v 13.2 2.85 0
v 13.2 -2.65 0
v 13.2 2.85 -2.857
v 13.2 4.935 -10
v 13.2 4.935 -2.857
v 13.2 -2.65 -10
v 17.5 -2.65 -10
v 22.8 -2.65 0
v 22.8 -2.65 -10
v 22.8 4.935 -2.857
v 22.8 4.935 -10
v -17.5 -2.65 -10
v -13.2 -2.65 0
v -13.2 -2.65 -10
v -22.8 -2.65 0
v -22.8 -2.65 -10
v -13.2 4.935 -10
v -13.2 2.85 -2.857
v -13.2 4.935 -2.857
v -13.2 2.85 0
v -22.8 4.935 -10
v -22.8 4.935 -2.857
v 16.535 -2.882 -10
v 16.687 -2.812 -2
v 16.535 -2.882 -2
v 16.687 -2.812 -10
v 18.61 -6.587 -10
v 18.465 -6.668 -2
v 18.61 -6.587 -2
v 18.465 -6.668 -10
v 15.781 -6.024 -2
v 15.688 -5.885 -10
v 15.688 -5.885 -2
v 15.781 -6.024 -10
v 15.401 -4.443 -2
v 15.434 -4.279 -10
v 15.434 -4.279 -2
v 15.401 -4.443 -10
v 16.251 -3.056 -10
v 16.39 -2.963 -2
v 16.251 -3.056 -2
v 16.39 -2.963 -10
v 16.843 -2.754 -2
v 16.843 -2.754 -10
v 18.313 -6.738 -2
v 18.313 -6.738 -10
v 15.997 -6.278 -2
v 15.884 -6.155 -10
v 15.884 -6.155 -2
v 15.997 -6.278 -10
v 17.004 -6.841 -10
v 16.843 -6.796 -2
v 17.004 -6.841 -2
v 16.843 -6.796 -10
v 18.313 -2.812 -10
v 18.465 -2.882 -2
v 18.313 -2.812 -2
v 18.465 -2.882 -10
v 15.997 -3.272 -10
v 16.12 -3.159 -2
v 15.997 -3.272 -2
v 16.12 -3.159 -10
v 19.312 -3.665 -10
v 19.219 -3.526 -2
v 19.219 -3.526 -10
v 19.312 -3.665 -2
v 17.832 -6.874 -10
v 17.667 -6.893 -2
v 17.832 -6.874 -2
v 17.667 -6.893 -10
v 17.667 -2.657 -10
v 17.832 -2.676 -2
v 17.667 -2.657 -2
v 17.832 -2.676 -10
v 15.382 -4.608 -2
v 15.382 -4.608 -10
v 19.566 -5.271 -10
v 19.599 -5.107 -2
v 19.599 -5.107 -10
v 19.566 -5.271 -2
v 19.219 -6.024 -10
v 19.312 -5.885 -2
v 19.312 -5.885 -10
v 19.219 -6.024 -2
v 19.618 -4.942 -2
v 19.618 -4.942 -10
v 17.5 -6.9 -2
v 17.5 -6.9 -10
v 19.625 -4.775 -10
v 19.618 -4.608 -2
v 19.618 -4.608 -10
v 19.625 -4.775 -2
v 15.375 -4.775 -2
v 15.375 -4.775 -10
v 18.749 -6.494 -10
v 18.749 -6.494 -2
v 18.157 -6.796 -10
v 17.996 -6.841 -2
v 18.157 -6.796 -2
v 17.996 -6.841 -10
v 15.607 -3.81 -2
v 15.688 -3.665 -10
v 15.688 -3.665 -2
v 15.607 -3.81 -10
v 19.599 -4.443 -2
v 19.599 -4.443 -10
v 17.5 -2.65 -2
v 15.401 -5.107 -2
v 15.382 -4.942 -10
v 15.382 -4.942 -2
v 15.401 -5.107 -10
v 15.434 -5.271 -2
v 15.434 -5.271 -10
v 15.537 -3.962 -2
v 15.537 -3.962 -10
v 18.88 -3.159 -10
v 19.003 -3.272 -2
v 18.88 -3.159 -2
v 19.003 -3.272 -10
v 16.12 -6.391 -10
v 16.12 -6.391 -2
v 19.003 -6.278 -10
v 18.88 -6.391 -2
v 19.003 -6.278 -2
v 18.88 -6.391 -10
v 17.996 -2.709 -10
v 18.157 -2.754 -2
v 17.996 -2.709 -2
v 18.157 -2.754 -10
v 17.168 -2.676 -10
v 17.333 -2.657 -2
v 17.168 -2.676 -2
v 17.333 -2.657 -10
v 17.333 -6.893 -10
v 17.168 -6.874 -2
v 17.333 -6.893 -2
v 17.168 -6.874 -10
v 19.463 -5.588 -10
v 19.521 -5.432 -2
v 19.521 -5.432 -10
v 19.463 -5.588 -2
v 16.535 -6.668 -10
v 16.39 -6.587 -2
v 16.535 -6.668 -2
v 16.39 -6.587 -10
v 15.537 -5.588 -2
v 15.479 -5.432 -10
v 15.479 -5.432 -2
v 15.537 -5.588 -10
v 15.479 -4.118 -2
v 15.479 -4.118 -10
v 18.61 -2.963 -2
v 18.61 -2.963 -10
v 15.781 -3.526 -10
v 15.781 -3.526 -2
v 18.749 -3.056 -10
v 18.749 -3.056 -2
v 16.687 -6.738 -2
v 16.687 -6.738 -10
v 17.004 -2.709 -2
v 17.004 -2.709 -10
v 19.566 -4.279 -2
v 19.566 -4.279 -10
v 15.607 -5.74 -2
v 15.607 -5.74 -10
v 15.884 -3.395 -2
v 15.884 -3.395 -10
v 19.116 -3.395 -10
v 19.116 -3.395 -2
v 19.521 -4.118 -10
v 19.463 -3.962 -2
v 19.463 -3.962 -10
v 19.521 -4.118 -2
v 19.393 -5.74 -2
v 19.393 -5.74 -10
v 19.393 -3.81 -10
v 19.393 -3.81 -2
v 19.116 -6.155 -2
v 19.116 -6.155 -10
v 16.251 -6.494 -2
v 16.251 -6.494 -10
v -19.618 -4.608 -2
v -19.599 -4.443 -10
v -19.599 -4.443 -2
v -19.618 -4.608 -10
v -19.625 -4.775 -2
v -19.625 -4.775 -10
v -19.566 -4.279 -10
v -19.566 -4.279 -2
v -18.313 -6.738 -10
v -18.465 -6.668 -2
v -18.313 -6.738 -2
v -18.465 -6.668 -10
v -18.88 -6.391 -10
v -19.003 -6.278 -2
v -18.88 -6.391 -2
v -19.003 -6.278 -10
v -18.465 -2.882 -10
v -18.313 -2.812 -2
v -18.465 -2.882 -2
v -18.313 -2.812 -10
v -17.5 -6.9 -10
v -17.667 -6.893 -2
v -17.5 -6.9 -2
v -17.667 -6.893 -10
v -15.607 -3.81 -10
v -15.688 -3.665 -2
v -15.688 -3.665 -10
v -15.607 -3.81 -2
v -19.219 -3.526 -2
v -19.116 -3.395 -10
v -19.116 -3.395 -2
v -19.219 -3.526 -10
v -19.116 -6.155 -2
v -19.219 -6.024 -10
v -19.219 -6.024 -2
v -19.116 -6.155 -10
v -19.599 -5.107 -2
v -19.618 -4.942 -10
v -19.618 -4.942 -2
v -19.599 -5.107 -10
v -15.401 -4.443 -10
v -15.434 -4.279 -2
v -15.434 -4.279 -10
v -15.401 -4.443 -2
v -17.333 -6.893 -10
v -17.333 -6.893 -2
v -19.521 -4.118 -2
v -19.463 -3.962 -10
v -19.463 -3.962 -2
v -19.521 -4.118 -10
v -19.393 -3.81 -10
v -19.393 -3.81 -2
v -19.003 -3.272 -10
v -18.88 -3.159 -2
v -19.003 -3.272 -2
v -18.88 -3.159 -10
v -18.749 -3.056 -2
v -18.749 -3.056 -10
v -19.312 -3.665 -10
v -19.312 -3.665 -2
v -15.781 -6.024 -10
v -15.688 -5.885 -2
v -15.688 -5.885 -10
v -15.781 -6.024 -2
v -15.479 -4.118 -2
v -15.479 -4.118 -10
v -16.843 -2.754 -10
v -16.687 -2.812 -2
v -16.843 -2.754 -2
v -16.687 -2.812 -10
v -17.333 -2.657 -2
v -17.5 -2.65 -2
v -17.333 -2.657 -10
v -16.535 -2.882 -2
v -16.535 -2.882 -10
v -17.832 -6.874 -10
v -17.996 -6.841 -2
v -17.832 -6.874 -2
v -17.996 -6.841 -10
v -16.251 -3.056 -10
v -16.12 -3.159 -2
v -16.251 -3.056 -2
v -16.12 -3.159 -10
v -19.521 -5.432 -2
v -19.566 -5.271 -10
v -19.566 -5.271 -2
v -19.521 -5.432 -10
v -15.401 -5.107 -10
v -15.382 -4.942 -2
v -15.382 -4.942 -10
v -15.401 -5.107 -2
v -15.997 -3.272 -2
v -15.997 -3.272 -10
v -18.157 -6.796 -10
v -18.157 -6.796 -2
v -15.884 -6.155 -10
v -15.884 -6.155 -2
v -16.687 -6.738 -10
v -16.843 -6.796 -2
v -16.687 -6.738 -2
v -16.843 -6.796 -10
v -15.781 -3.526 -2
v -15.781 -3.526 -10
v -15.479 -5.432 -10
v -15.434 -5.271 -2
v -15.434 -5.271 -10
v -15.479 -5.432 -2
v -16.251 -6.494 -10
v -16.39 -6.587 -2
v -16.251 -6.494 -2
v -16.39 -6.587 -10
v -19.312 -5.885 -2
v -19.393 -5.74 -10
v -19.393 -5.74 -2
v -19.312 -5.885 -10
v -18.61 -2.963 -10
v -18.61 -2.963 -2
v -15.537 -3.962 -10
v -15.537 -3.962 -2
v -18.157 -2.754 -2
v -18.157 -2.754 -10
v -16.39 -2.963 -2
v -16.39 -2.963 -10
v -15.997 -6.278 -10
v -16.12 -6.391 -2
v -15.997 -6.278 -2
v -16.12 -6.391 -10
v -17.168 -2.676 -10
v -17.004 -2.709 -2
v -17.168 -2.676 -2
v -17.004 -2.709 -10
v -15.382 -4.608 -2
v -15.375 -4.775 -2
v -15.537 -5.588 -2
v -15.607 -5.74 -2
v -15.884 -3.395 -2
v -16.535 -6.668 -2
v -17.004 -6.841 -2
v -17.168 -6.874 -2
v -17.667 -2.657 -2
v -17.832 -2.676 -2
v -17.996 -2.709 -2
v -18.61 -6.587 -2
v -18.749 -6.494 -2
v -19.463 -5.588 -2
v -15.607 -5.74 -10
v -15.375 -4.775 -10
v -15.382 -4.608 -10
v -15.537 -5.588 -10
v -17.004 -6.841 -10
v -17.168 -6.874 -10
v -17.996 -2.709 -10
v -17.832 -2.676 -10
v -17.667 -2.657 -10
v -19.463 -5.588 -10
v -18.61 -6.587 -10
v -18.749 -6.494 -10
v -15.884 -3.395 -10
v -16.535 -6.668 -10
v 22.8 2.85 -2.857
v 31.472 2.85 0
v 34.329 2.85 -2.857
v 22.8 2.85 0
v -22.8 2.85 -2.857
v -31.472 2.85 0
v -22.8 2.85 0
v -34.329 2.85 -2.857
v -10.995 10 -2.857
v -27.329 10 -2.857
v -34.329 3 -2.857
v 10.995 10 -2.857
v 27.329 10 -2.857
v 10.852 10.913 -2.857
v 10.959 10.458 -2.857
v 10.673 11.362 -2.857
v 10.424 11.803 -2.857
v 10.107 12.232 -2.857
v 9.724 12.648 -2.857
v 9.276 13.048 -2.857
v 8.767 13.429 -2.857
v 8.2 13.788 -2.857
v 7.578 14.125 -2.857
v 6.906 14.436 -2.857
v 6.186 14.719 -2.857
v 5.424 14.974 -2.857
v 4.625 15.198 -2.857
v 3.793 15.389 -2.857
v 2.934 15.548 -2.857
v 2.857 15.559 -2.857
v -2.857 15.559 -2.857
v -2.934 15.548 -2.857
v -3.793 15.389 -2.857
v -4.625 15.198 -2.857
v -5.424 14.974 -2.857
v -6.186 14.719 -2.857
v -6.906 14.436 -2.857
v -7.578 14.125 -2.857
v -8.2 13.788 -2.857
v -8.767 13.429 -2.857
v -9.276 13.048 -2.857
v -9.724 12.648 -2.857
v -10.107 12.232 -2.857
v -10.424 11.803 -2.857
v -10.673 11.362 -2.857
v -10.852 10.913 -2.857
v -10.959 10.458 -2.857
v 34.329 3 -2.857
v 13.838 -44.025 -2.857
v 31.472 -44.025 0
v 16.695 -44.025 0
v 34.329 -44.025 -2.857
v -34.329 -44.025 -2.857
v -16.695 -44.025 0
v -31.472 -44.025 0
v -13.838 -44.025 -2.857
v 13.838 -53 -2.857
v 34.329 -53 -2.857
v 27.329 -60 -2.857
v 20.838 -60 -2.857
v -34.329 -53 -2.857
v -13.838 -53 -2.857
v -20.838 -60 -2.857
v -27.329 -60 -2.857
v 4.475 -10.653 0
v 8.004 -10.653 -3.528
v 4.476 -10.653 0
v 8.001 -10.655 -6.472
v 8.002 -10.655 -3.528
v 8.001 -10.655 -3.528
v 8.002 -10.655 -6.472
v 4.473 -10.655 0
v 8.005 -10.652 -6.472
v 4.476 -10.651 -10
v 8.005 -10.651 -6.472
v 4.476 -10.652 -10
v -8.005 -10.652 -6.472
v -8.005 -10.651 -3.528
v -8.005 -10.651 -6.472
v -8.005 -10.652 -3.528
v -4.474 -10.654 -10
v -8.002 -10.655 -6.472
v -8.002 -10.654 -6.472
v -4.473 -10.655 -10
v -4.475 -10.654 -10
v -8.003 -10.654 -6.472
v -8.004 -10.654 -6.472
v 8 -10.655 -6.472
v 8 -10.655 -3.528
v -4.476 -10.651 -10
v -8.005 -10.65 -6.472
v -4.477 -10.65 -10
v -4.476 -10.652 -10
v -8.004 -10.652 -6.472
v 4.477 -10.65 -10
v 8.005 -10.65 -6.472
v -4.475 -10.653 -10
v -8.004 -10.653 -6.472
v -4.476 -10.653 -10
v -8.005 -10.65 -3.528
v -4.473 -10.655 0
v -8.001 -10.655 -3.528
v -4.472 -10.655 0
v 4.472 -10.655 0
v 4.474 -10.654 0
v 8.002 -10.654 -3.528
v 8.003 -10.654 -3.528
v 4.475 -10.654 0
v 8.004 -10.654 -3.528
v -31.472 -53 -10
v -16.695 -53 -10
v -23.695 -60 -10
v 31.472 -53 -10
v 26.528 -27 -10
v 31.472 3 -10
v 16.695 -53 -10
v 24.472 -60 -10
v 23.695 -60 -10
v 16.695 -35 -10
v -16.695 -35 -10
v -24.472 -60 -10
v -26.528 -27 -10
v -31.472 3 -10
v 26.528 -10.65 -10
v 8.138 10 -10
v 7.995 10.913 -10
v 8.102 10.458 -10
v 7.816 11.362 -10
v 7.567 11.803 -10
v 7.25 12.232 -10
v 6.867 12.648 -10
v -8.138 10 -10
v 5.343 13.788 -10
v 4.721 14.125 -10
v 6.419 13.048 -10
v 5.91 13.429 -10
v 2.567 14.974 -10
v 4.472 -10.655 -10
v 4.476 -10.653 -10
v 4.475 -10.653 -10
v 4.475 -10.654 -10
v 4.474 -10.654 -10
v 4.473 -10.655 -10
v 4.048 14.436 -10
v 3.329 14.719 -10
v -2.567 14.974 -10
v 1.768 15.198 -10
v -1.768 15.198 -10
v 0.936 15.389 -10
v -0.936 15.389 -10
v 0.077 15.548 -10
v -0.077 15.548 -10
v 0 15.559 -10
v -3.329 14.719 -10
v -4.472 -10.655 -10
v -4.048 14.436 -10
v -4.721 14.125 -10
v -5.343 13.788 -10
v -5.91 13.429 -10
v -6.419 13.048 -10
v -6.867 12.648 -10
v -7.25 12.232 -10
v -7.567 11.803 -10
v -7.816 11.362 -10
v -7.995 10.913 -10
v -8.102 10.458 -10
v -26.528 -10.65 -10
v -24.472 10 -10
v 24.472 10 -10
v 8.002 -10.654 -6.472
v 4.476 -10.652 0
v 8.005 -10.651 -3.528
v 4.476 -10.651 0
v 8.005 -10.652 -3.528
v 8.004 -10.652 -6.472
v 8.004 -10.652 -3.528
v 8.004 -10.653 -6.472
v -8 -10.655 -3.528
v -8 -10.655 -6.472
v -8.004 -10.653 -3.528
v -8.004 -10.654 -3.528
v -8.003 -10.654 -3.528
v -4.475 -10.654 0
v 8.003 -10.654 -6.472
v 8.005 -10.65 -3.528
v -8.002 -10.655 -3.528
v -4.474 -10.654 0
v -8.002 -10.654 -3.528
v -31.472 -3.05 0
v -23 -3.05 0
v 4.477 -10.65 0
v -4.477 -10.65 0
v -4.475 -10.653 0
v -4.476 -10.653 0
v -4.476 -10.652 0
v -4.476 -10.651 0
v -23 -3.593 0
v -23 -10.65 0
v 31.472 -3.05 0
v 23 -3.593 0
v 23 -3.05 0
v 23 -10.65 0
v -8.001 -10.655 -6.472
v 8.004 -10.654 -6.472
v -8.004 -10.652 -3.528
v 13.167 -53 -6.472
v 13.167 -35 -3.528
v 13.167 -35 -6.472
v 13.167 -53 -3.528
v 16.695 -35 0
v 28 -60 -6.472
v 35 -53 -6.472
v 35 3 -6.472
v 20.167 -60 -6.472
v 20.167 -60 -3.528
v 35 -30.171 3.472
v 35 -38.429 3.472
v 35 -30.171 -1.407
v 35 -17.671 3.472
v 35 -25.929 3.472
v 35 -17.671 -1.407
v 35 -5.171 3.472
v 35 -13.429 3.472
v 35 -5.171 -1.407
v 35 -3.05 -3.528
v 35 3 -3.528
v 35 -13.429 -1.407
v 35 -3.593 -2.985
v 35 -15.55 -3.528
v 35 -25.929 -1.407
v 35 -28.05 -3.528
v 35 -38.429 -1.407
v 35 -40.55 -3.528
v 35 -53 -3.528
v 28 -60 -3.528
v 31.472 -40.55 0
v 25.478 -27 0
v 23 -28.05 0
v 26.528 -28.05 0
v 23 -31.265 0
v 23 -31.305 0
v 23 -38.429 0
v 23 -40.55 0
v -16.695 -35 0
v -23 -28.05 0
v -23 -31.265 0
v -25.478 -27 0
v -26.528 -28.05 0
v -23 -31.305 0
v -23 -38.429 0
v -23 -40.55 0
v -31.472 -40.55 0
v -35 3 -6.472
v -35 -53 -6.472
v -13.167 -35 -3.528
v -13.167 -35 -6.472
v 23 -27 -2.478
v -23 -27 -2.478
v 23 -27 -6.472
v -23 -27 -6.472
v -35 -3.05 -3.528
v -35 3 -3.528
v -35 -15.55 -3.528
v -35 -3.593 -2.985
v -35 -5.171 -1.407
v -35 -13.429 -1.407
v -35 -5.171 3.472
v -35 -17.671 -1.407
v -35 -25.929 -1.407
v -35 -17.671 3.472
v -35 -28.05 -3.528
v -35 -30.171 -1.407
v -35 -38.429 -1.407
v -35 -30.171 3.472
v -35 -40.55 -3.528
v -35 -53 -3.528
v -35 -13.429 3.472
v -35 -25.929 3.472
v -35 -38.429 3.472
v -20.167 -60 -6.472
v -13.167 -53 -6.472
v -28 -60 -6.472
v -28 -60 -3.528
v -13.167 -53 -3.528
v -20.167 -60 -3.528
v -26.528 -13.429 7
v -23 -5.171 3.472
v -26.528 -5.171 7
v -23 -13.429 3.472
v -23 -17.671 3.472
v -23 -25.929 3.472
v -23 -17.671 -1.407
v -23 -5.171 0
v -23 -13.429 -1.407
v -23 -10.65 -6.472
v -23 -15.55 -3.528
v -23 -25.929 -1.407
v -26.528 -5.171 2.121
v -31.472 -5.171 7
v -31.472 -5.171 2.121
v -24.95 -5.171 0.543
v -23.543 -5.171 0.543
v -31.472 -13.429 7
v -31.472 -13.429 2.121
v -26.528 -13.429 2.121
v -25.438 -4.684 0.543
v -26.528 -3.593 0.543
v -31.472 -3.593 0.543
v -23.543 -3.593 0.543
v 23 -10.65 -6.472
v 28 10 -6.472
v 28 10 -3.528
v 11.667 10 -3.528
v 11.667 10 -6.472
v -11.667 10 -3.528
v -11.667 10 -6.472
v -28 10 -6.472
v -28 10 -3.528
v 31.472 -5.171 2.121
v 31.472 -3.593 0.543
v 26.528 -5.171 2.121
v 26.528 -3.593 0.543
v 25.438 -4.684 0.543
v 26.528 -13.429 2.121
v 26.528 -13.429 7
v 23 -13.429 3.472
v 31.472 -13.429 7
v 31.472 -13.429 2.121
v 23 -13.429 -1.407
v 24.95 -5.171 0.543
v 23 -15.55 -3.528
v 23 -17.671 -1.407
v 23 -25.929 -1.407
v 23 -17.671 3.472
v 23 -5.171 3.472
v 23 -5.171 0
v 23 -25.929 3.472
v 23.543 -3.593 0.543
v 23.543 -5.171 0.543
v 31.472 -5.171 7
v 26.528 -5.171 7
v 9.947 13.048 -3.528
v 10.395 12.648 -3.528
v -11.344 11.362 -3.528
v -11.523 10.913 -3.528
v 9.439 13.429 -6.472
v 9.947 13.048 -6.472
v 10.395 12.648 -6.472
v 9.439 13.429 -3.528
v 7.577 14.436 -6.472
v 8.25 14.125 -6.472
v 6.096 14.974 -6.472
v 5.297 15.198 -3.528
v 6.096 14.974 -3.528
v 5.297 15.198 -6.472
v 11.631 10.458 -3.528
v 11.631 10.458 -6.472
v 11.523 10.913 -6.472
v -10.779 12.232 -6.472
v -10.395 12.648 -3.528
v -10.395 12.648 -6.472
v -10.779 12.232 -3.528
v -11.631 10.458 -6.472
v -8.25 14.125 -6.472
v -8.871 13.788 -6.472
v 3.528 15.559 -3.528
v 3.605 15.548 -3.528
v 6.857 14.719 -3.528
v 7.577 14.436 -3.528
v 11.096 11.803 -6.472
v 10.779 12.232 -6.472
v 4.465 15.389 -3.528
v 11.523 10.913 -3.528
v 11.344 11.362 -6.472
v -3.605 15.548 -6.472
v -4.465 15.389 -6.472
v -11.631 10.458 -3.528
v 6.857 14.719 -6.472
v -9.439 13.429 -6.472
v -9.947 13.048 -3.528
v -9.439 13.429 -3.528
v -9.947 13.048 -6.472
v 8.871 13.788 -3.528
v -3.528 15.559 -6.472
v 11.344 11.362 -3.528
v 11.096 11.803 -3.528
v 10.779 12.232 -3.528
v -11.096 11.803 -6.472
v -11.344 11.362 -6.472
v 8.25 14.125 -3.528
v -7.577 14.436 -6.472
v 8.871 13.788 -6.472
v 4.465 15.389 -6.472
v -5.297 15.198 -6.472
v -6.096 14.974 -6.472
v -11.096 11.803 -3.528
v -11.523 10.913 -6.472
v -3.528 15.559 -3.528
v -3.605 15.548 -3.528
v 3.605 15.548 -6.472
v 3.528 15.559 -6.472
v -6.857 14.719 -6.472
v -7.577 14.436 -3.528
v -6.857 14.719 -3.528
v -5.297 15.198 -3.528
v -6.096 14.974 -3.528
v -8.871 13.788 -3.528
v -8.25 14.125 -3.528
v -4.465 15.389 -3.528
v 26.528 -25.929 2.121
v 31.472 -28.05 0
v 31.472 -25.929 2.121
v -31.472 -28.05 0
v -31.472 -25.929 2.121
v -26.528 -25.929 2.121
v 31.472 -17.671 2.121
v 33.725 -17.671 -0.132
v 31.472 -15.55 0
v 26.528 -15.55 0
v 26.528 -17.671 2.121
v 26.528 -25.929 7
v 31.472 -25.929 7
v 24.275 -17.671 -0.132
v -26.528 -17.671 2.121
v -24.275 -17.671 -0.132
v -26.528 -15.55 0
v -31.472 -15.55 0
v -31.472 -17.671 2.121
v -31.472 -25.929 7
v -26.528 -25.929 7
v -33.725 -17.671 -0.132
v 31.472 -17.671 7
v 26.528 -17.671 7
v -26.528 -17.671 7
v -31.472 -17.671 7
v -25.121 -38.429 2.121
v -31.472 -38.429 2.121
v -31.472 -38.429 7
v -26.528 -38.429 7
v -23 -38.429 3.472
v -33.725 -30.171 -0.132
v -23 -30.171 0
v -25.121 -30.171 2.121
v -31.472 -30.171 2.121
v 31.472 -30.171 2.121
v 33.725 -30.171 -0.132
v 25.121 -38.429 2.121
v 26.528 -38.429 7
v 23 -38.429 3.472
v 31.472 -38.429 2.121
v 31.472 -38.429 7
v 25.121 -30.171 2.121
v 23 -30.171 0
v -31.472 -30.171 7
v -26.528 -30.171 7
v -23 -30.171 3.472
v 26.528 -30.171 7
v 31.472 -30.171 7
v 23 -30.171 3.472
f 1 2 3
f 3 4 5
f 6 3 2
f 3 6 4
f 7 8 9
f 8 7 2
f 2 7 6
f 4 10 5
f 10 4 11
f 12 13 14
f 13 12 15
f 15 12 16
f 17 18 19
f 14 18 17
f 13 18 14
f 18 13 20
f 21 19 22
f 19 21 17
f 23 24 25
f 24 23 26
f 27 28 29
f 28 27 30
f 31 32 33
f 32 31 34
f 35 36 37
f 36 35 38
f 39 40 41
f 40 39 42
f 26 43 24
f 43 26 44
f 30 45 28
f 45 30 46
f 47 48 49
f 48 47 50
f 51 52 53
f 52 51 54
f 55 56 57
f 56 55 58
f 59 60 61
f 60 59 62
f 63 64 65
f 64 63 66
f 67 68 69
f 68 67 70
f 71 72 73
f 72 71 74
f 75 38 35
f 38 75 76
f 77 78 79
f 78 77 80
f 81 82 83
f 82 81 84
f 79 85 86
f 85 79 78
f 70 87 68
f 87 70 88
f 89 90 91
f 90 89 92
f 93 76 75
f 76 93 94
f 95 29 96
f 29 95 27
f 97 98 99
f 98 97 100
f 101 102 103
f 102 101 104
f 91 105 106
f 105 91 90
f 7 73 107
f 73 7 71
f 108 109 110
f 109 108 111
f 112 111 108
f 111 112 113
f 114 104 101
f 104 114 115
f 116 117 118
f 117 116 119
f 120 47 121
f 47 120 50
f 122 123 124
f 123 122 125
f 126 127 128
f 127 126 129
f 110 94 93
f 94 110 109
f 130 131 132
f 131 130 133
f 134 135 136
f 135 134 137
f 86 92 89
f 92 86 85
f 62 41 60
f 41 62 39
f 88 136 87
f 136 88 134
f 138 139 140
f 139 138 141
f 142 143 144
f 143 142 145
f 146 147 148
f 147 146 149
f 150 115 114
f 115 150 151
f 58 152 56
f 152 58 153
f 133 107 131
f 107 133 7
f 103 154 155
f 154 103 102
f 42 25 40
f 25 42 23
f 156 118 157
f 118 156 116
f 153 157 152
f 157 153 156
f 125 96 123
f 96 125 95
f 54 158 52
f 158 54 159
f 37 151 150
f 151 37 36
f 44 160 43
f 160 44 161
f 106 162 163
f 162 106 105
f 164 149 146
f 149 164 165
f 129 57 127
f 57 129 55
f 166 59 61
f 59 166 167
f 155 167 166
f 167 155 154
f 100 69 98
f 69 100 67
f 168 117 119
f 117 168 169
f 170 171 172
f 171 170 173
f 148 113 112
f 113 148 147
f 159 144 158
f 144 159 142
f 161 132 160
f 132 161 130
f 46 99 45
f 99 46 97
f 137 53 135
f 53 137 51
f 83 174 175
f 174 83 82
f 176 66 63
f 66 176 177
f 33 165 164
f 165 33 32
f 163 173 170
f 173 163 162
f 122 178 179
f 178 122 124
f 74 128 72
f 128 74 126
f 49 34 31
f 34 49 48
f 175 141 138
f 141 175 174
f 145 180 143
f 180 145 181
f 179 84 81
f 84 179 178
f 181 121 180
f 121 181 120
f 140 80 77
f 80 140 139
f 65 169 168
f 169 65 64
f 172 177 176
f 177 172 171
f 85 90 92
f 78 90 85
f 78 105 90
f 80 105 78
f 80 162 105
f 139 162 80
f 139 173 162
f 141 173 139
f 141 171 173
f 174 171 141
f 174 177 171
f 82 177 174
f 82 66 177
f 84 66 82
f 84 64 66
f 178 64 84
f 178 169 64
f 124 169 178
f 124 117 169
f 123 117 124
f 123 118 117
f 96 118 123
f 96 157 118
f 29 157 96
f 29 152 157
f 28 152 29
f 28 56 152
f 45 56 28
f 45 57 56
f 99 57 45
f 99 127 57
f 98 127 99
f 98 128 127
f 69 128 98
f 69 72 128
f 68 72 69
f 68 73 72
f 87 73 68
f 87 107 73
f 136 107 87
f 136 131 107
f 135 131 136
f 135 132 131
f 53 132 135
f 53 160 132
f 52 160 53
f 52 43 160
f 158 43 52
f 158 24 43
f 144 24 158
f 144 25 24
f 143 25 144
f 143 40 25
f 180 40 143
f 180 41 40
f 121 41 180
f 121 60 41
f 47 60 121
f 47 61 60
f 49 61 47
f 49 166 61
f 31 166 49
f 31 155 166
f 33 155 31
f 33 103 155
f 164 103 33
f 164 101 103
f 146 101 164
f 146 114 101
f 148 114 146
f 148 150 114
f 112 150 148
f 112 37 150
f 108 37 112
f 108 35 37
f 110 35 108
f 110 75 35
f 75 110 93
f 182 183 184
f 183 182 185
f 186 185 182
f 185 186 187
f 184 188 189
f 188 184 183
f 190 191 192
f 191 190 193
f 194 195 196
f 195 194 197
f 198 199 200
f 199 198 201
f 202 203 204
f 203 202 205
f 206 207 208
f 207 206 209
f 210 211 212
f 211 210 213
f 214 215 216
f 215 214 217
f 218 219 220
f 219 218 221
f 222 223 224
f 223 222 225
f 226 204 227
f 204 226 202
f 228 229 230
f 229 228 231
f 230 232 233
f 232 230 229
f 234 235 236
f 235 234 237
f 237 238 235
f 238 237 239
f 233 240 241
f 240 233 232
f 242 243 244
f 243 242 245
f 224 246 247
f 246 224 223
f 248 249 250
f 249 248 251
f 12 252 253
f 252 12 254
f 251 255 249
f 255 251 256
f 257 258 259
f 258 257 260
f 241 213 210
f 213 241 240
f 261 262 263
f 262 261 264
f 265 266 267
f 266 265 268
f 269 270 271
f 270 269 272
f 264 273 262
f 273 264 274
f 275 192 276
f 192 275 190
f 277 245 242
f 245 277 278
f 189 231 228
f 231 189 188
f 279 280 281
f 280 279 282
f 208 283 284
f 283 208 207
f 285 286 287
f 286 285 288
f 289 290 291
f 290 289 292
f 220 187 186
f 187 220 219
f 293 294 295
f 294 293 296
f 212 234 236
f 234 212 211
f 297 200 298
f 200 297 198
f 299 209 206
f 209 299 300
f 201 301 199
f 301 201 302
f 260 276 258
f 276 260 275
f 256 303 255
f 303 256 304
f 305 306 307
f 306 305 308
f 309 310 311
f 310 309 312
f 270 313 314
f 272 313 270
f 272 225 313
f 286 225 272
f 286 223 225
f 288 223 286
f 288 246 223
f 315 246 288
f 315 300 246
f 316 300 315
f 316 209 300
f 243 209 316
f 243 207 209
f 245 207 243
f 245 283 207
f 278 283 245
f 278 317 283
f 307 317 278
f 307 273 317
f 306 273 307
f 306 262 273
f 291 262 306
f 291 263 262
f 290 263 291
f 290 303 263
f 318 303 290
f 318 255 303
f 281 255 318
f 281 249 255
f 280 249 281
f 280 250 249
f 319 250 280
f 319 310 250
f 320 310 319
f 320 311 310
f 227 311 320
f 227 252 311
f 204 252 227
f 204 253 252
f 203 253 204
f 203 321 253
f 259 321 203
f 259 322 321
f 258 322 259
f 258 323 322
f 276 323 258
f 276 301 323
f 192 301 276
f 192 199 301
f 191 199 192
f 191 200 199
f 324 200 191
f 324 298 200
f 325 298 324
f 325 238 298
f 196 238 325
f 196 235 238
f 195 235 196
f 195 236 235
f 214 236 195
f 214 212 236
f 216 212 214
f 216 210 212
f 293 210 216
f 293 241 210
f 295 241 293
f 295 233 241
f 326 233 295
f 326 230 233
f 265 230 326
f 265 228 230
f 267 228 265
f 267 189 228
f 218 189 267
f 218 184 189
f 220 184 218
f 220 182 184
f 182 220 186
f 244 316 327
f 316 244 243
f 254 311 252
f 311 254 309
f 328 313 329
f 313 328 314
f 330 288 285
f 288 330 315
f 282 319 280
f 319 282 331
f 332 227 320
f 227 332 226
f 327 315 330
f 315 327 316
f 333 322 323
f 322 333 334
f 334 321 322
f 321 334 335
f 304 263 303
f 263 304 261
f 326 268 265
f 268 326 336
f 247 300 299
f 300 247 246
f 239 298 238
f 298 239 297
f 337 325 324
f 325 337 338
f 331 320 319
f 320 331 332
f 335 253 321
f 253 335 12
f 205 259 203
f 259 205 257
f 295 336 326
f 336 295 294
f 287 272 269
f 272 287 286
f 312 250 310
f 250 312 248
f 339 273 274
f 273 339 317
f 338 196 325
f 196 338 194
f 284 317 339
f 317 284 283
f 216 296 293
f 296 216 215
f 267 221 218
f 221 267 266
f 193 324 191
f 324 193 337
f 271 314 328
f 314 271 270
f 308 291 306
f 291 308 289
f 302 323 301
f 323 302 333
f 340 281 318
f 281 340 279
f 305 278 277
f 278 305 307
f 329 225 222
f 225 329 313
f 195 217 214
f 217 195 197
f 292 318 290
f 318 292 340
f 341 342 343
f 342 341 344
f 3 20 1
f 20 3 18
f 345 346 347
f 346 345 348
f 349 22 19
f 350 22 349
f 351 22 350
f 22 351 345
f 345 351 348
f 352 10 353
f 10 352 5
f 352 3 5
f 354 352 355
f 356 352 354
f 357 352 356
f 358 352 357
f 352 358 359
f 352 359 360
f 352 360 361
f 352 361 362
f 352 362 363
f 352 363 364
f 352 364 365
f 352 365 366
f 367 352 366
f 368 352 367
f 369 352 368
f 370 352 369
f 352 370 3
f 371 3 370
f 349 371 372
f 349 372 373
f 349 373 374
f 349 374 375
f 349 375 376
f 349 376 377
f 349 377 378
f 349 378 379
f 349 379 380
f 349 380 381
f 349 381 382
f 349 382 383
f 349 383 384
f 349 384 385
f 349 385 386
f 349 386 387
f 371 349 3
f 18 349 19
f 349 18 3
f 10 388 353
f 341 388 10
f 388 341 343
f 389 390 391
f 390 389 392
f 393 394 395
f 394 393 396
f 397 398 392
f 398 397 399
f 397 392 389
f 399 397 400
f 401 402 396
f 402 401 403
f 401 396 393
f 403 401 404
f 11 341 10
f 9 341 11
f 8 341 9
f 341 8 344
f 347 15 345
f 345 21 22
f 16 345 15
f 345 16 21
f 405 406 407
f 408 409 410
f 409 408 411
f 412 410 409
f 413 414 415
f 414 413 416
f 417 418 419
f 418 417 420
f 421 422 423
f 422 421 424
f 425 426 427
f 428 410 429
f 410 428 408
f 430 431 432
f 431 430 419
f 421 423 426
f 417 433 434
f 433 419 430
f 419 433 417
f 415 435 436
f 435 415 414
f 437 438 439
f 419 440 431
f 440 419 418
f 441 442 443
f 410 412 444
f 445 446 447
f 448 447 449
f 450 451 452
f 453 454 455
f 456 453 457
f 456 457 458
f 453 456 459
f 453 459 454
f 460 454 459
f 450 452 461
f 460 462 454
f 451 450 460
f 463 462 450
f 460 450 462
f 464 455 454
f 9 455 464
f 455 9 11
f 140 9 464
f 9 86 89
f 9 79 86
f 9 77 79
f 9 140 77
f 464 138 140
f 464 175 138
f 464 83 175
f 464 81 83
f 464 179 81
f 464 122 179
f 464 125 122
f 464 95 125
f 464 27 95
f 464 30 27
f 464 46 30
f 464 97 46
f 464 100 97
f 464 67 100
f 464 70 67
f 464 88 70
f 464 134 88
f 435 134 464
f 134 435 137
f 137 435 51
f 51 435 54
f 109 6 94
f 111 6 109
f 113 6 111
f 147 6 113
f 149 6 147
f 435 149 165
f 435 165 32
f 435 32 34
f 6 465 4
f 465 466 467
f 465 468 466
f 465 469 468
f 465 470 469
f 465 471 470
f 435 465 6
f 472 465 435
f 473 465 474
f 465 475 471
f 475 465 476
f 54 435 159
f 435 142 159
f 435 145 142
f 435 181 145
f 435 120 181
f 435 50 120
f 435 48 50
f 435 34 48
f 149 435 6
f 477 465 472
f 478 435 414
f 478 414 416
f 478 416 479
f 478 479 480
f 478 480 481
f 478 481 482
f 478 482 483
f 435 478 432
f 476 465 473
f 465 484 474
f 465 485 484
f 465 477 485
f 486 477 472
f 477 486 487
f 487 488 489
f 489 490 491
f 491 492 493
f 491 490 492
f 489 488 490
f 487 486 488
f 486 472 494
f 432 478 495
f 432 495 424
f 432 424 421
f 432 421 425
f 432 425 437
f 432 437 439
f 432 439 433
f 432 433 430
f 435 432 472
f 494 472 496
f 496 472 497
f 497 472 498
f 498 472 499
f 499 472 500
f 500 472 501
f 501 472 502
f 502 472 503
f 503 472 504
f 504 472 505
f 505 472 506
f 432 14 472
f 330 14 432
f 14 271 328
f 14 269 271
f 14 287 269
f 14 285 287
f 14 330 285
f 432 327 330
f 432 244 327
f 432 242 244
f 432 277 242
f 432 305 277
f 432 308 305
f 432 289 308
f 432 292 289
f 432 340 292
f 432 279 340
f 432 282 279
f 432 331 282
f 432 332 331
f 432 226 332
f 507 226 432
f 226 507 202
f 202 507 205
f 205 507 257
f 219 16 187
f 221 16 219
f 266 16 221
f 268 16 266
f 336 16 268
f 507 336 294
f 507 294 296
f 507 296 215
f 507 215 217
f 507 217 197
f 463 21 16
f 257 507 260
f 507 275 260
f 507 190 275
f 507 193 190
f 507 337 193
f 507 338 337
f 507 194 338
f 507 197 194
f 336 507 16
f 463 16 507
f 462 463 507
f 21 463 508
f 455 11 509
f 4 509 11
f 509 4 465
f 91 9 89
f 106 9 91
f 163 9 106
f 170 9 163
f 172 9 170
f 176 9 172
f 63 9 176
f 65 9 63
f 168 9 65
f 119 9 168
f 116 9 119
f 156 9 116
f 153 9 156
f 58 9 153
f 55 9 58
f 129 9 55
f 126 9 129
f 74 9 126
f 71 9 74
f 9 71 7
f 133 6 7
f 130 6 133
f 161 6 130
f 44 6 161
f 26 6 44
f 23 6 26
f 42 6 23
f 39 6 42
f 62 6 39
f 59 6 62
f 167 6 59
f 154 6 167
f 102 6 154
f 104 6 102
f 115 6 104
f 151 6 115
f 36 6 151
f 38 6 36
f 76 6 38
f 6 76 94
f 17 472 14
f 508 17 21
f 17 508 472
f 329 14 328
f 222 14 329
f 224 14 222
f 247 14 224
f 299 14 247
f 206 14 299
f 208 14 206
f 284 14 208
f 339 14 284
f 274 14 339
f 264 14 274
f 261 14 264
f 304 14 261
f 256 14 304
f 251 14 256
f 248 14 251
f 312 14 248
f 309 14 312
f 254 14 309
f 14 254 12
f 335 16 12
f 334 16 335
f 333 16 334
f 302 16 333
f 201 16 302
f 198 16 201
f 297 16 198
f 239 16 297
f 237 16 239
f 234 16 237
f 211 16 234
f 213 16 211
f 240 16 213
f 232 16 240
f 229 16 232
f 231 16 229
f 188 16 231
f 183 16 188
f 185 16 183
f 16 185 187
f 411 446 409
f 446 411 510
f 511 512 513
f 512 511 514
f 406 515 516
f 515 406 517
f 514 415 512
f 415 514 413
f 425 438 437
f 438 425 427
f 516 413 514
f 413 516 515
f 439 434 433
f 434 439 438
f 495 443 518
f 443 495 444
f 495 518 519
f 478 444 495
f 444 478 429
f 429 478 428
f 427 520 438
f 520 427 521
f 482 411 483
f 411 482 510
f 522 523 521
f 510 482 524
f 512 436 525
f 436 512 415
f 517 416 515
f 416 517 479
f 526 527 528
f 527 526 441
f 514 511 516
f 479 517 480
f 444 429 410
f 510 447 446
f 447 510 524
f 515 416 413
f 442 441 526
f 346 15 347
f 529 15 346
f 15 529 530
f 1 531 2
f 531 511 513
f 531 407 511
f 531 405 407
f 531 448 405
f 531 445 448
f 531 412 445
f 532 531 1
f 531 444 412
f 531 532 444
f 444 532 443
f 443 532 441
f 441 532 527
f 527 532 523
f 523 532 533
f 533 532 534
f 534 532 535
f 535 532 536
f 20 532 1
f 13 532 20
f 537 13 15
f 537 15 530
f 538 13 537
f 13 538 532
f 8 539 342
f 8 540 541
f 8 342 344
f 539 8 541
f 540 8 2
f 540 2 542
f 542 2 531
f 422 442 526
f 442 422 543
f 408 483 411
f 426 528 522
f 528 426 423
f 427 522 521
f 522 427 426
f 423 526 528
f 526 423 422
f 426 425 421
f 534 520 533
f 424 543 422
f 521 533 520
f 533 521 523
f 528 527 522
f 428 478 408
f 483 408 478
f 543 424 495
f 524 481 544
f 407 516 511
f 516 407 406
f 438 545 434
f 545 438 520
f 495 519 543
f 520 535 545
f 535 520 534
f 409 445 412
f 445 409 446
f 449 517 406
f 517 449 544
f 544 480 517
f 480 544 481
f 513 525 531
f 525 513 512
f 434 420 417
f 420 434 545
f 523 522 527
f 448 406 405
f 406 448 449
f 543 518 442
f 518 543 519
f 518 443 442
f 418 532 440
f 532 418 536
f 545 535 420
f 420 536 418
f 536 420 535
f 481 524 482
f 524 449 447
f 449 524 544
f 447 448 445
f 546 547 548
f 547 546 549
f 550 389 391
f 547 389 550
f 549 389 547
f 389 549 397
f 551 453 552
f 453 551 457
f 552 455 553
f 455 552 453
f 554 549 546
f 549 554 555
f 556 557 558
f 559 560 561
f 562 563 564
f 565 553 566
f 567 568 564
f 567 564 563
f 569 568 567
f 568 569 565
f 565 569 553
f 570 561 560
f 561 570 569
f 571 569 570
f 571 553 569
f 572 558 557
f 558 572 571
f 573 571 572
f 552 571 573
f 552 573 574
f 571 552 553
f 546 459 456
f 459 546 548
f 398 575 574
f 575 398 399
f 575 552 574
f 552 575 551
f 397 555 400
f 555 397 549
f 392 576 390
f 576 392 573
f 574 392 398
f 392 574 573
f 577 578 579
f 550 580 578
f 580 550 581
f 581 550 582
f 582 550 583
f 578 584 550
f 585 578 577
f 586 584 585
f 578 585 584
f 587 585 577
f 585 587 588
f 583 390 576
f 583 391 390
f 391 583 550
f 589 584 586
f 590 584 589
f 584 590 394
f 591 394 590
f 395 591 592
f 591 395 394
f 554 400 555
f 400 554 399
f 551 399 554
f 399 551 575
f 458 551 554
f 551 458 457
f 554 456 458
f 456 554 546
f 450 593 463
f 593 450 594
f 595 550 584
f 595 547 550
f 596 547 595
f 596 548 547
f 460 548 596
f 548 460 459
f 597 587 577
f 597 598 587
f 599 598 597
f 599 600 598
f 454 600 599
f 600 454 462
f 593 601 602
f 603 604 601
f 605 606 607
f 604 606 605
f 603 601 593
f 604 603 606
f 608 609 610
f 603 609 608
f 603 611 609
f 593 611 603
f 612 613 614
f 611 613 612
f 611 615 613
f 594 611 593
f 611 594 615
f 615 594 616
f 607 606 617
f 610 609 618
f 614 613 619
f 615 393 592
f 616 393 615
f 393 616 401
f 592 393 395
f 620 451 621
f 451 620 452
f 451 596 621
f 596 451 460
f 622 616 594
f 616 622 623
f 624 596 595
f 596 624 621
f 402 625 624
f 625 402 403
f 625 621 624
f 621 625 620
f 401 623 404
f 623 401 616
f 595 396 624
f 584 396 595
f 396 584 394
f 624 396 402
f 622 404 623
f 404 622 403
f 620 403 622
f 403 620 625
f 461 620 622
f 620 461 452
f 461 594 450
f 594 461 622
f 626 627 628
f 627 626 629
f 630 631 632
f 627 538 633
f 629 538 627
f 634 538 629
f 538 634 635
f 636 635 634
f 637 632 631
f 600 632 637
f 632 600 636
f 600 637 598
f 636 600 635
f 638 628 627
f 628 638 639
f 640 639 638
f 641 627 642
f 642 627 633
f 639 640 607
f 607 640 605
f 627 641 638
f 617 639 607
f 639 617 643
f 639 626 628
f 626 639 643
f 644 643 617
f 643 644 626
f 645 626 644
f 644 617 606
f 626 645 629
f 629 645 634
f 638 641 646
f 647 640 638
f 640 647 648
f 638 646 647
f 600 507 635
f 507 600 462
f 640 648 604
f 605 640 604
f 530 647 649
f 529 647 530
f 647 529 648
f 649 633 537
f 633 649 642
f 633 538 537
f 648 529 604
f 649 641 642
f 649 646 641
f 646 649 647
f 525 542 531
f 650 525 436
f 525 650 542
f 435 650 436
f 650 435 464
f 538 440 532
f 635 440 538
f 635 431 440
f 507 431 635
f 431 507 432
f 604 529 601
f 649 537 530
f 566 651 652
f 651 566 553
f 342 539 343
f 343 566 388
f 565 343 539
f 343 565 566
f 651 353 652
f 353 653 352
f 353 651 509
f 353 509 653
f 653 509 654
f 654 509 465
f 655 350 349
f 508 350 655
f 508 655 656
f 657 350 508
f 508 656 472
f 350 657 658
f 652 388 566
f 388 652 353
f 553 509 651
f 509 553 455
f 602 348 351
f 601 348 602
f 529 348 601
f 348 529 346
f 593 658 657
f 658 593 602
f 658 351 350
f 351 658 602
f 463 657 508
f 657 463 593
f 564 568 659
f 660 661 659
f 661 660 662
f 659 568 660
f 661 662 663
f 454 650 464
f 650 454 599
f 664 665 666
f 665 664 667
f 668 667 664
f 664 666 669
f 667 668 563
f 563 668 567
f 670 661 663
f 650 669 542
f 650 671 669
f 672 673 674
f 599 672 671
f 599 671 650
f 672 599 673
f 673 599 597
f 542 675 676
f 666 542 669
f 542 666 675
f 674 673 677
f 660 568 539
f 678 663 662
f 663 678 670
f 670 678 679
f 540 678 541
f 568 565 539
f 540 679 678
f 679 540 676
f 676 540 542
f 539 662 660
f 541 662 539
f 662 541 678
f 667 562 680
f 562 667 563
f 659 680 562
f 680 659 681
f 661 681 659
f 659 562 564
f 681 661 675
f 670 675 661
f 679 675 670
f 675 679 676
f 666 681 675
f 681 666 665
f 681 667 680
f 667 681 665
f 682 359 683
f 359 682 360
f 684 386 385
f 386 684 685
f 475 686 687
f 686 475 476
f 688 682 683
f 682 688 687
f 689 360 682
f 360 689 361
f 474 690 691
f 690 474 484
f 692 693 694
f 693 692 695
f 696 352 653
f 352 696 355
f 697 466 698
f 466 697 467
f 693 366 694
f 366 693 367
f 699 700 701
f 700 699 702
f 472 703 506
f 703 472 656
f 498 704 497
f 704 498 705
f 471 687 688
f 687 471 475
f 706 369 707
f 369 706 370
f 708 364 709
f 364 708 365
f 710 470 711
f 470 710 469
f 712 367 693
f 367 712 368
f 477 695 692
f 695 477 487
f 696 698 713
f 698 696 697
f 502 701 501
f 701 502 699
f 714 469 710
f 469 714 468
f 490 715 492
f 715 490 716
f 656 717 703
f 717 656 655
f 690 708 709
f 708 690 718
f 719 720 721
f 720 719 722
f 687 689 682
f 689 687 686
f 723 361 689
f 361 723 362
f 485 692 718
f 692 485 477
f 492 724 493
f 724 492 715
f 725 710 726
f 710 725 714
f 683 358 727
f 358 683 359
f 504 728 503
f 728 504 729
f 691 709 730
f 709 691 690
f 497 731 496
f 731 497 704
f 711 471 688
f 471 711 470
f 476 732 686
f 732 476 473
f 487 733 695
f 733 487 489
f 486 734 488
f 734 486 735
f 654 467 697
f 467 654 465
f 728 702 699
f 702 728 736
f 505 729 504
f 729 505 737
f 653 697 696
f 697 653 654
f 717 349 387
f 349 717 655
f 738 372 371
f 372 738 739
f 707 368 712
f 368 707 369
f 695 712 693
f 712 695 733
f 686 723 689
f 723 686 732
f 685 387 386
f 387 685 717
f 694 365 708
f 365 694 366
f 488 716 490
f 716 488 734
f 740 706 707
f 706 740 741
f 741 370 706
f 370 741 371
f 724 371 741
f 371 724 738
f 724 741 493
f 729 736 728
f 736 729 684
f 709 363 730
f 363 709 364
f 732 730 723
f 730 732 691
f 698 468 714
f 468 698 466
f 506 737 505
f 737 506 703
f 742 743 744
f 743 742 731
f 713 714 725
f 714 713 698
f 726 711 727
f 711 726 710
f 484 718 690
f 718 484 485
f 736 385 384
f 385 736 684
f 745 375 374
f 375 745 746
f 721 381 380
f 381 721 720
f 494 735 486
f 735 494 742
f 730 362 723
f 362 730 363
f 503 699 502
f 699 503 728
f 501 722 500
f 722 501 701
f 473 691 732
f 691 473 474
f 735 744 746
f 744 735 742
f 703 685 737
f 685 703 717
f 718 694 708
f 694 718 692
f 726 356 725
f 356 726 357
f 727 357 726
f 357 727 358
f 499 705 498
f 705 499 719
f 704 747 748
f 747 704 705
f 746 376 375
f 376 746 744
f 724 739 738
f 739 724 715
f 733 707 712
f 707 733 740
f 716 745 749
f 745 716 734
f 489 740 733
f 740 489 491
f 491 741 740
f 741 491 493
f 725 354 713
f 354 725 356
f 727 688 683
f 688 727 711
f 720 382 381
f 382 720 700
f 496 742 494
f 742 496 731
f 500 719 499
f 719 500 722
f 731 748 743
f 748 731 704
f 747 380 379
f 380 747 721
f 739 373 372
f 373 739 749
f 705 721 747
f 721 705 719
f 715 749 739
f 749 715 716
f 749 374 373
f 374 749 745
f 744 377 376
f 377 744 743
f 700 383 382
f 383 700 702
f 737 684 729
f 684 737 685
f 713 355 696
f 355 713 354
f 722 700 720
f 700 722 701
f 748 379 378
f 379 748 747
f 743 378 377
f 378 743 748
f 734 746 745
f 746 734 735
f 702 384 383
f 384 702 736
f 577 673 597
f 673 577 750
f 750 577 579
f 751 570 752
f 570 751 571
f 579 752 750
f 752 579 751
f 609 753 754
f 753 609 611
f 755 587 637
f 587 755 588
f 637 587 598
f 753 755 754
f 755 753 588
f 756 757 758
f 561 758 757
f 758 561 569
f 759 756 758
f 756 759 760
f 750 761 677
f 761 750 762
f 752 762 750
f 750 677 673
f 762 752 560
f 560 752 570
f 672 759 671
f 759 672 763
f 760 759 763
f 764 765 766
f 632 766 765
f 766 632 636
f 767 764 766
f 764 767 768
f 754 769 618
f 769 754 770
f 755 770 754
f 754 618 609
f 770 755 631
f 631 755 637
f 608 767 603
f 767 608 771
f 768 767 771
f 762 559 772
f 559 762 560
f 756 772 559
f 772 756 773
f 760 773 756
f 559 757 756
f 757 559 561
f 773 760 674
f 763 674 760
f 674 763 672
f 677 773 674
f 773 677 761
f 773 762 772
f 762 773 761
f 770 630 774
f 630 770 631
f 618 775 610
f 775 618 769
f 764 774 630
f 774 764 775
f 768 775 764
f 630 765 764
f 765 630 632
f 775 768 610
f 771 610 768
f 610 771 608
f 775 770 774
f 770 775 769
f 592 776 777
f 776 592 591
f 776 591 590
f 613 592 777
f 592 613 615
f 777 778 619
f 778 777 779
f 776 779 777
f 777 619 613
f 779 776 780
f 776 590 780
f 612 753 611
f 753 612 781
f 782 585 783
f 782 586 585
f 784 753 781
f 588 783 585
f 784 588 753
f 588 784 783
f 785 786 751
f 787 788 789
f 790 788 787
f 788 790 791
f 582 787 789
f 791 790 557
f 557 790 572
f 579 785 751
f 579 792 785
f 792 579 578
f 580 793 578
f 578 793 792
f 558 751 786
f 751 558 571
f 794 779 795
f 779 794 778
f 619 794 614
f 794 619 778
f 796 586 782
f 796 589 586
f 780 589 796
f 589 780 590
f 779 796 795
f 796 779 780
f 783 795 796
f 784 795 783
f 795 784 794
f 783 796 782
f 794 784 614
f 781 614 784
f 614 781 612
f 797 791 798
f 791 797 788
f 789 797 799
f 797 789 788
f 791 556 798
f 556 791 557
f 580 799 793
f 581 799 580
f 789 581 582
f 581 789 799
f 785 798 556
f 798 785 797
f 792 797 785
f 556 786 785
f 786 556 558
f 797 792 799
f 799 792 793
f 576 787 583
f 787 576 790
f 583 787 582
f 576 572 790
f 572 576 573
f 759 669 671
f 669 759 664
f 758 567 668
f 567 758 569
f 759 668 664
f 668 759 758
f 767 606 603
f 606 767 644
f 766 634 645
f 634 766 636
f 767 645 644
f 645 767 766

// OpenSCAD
// file: ../chamferer.scad
INFINITY = 10000;
ATOM = .01;

module chamfer_tool(r, fn, tool,
                    ax, ay, az,
                    ax2, ay2, az2,
                    ax3, ay3, az3) {
    rotate([ax3, ay3, az3])
    rotate([ax2, ay2, az2])
    rotate([ax, ay, az]) {
        if (tool=="sphere") {
            sphere(r, $fn=fn);
        }
        else if (tool=="hemisphere-up") {
            intersection() {
                sphere(r, $fn=fn);
                cylinder(r=r*2, h=r*2);
            }
        }
        else if (tool=="hemisphere-down") {
            difference() {
                sphere(r, $fn=fn);
                cylinder(r=r*2, h=r*2);
            }
        }
        else if (tool=="cone") {
            cylinder(r, r, 0, $fn=fn);
            scale([1, 1, -1])
            cylinder(r, r, 0, $fn=fn);
        }
        else if (tool=="cone-up") {
            cylinder(r, r, 0, $fn=fn, center=true);
        }
        else if (tool=="cone-down") {
            scale([1, 1, -1])
            cylinder(r, r, 0, $fn=fn, center=true);
        }
        else if (tool=="octahedron") {
            resize([r*2, r*2, r*2]) {
                cylinder(r, r, 0, $fn=4);
                scale([1, 1, -1])
                cylinder(r, r, 0, $fn=4);
            }
        }
        else if (tool=="pyramid") {
            resize([r*2, r*2, r*2]) {
                cylinder(r, r, 0, center=true, $fn=4);
            }
        }
        else if (tool=="rpyramid") {
            resize([r*2, r*2, r*2]) {
                cylinder(r, 0, r, center=true, $fn=4);
            }
        }
        else if (tool=="cylinder-z" || tool=="cylinder") {
            cylinder(r=r, h=ATOM, $fn=fn, center=true);
        }
        else if (tool=="cylinder-x") {
            rotate([0, 90, 0])
            cylinder(r=r, h=ATOM, $fn=fn, center=true);
        }
        else if (tool=="cylinder-y") {
            rotate([90, 0, 0])
            cylinder(r=r, h=ATOM, $fn=fn, center=true);
        }
        else if (tool=="cube") {
            cube(r*2, center=true);
        }
        else if (tool=="plate-y") {
            cube([r*2, ATOM, r*2], center=true);
        }
        else if (tool=="plate-z") {
            cube([r*2, r*2, ATOM], center=true);
        }
        else {
            assert(false, str("Unknown tool: ", tool));
        }
    }
}

module shrinker(r, tool, fn,
                ax, ay, az,
                ax2, ay2, az2,
                ax3, ay3, az3) {
    if (!r) {
        children();
    }
    else {
        // re-invert+grow = fillet
        difference() {
            cube(INFINITY/2, center=true);

            // invert+grow = carve
            minkowski() {
                difference() {
                    cube(INFINITY, center=true);
                    children();
                }
                //cube(r, center=true);
                chamfer_tool(r, fn, tool,
                             ax, ay, az,
                             ax2, ay2, az2,
                             ax3, ay3, az3);
            }
        }
    }
}

module chamferer(r, tool="sphere", fn=8, shrink=true, grow=true,
                 ax=0, ay=0, az=0,
                 ax2=0, ay2=0, az2=0,
                 ax3=0, ay3=0, az3=0,
) {
    if (!r) {
        children();
    }
    else {
        minkowski() {
            if (shrink)
                shrinker(r, tool, fn,
                         ax, ay, az,
                         ax2, ay2, az2,
                         ax3, ay3, az3) children();
            else
                children();
            
            if (grow)
                chamfer_tool(r, fn, tool,
                             ax, ay, az,
                             ax2, ay2, az2,
                             ax3, ay3, az3);
        }
    }
}



cube(50);

translate([70, 0, 0])
chamferer(5, "hemisphere-up", $preview? 6*4 : 30)
//shrinker(5, "sphere", $preview? 6*4 : 30)
cube(50);

translate([70*2, 0, 0])
chamferer(5, "octahedron", grow=false)
cube(50);
// main file
use <../chamferer.scad>
L  = 80 - 10;
W  = 10             ;//-9+1;
H  = 50 -5;

W2 = W; //W*.6 +2;

L2 = 35;
L3 = L; //44 + 20;

D  = 6;
D2 = 4.25;

RW = 8.6;
RH = 4.5    + .8;

SD = 4.5;

CH = 9  -2;
CH2 = 9 -1;

$fn  = $preview ? 20 : 80;
ATOM = 0.01;

module rail() {
    w = RW;
    h = RH;
    cube([w, 100, h], center=true);

    w2 = w / sqrt(2);
    z2 = RH*.7;

    h3 = 7-z2;
    translate([0, 0, h3/2*2 + z2*0])
    cube([w, 100, h3], center=true);
}

module rails() {
    for(x=[-L2/2, L2/2])
        translate([x, 0, 0])
        rail();

    for(x=[-L2/2-1, L2/2+1])
        translate([x, 0, 0])
        rail();
}

module plate(xh=20+5, with_rails) {
    z = -H+10;
    difference() {
        translate([0, 0, z]) {

            chamferer(CH, "cylinder-y", fn=4) {
            translate([-L/2, -W, 0])
            cube([L, W, H]);

            l = L/3 -2+.5;
            for(x=[-L/2, L/2-l])
                translate([x, -W, -xh])
                cube([l, W, xh]);
            }

            if (!with_rails) {
                translate([0, 0, H])
                scale([2, 1, 1])
                rotate([90, 0, 0])
                cylinder(d=L/6, h=W);
            }

        }

        if (with_rails)
            rails();

        if (with_rails)
        translate([0, 2, -RH/2-D2 +4.25])
        rotate([90, 0, 0])
        cylinder(d=ATOM, h=W*2);
/*
        translate([-L, -W/3.5, 0])
        if (!with_rails) {
            // shave head
            translate([0, 0, z+H-7.15])
            cube([L*2, W, H]);

            // shave tail
            translate([0, 0, z-H-9.025])
            cube([L*2, W, H]);
        }
*/
    }
}

module base() {
    difference() {
        plate(with_rails=false);
        
        // hollowing
        translate([0, 1, 0])
        scale([1, 2, 1])
        chamferer(CH2, "plate-y")
        chamferer(CH2, "plate-y", grow=false)
        plate(with_rails=true);
    }
}

module piece()
difference() {
    chamferer($preview?0:W/2-ATOM, fn=4, az=90)
    union() {
        base();
        step = 12.5;

        difference() {
            w = CH2+W*2-.3;
            l = 12; //w/3-.5;
            for (x=[-L/2, L/2-l])
                translate([x, -W, -CH2-RH/2-step*2.75+1])
                cube([l, 7+W, step*3.75]);

           for (i=[0:3]) {
                th = 6;
                translate([0, 0, -RH/2-.4 -i*step])
                hull() {
                    h = 6;

                    translate([0, 3/sqrt(2), 0])
                    rotate([45, 0, 0])
                    cube([L*2, 3, 3], center=true);

                    translate([0, 3*3, 0])
                    rotate([45, 0, 0])
                    cube([L*2, 3, 3], center=true);
                }
            }
        }

    }

    // spring holes
    for(x=[-L2/2, L2/2])
        translate([x, -2, -RH/2-D2/2])
        rotate([90, 0, 0])
        cylinder(d=D2, h=W*2);

    rails();

    z = -H+10;
    translate([-L, -W/3.5, 0]) {
        // shave head
        translate([0, 0, z+H-7.15])
        cube([L*2, W, H]);

        // shave tail
        translate([0, 0, z-H-9.025])
        cube([L*2, W, H]);
    }


}

rotate([$preview?0:90, 0, $preview?0:180])
piece();
